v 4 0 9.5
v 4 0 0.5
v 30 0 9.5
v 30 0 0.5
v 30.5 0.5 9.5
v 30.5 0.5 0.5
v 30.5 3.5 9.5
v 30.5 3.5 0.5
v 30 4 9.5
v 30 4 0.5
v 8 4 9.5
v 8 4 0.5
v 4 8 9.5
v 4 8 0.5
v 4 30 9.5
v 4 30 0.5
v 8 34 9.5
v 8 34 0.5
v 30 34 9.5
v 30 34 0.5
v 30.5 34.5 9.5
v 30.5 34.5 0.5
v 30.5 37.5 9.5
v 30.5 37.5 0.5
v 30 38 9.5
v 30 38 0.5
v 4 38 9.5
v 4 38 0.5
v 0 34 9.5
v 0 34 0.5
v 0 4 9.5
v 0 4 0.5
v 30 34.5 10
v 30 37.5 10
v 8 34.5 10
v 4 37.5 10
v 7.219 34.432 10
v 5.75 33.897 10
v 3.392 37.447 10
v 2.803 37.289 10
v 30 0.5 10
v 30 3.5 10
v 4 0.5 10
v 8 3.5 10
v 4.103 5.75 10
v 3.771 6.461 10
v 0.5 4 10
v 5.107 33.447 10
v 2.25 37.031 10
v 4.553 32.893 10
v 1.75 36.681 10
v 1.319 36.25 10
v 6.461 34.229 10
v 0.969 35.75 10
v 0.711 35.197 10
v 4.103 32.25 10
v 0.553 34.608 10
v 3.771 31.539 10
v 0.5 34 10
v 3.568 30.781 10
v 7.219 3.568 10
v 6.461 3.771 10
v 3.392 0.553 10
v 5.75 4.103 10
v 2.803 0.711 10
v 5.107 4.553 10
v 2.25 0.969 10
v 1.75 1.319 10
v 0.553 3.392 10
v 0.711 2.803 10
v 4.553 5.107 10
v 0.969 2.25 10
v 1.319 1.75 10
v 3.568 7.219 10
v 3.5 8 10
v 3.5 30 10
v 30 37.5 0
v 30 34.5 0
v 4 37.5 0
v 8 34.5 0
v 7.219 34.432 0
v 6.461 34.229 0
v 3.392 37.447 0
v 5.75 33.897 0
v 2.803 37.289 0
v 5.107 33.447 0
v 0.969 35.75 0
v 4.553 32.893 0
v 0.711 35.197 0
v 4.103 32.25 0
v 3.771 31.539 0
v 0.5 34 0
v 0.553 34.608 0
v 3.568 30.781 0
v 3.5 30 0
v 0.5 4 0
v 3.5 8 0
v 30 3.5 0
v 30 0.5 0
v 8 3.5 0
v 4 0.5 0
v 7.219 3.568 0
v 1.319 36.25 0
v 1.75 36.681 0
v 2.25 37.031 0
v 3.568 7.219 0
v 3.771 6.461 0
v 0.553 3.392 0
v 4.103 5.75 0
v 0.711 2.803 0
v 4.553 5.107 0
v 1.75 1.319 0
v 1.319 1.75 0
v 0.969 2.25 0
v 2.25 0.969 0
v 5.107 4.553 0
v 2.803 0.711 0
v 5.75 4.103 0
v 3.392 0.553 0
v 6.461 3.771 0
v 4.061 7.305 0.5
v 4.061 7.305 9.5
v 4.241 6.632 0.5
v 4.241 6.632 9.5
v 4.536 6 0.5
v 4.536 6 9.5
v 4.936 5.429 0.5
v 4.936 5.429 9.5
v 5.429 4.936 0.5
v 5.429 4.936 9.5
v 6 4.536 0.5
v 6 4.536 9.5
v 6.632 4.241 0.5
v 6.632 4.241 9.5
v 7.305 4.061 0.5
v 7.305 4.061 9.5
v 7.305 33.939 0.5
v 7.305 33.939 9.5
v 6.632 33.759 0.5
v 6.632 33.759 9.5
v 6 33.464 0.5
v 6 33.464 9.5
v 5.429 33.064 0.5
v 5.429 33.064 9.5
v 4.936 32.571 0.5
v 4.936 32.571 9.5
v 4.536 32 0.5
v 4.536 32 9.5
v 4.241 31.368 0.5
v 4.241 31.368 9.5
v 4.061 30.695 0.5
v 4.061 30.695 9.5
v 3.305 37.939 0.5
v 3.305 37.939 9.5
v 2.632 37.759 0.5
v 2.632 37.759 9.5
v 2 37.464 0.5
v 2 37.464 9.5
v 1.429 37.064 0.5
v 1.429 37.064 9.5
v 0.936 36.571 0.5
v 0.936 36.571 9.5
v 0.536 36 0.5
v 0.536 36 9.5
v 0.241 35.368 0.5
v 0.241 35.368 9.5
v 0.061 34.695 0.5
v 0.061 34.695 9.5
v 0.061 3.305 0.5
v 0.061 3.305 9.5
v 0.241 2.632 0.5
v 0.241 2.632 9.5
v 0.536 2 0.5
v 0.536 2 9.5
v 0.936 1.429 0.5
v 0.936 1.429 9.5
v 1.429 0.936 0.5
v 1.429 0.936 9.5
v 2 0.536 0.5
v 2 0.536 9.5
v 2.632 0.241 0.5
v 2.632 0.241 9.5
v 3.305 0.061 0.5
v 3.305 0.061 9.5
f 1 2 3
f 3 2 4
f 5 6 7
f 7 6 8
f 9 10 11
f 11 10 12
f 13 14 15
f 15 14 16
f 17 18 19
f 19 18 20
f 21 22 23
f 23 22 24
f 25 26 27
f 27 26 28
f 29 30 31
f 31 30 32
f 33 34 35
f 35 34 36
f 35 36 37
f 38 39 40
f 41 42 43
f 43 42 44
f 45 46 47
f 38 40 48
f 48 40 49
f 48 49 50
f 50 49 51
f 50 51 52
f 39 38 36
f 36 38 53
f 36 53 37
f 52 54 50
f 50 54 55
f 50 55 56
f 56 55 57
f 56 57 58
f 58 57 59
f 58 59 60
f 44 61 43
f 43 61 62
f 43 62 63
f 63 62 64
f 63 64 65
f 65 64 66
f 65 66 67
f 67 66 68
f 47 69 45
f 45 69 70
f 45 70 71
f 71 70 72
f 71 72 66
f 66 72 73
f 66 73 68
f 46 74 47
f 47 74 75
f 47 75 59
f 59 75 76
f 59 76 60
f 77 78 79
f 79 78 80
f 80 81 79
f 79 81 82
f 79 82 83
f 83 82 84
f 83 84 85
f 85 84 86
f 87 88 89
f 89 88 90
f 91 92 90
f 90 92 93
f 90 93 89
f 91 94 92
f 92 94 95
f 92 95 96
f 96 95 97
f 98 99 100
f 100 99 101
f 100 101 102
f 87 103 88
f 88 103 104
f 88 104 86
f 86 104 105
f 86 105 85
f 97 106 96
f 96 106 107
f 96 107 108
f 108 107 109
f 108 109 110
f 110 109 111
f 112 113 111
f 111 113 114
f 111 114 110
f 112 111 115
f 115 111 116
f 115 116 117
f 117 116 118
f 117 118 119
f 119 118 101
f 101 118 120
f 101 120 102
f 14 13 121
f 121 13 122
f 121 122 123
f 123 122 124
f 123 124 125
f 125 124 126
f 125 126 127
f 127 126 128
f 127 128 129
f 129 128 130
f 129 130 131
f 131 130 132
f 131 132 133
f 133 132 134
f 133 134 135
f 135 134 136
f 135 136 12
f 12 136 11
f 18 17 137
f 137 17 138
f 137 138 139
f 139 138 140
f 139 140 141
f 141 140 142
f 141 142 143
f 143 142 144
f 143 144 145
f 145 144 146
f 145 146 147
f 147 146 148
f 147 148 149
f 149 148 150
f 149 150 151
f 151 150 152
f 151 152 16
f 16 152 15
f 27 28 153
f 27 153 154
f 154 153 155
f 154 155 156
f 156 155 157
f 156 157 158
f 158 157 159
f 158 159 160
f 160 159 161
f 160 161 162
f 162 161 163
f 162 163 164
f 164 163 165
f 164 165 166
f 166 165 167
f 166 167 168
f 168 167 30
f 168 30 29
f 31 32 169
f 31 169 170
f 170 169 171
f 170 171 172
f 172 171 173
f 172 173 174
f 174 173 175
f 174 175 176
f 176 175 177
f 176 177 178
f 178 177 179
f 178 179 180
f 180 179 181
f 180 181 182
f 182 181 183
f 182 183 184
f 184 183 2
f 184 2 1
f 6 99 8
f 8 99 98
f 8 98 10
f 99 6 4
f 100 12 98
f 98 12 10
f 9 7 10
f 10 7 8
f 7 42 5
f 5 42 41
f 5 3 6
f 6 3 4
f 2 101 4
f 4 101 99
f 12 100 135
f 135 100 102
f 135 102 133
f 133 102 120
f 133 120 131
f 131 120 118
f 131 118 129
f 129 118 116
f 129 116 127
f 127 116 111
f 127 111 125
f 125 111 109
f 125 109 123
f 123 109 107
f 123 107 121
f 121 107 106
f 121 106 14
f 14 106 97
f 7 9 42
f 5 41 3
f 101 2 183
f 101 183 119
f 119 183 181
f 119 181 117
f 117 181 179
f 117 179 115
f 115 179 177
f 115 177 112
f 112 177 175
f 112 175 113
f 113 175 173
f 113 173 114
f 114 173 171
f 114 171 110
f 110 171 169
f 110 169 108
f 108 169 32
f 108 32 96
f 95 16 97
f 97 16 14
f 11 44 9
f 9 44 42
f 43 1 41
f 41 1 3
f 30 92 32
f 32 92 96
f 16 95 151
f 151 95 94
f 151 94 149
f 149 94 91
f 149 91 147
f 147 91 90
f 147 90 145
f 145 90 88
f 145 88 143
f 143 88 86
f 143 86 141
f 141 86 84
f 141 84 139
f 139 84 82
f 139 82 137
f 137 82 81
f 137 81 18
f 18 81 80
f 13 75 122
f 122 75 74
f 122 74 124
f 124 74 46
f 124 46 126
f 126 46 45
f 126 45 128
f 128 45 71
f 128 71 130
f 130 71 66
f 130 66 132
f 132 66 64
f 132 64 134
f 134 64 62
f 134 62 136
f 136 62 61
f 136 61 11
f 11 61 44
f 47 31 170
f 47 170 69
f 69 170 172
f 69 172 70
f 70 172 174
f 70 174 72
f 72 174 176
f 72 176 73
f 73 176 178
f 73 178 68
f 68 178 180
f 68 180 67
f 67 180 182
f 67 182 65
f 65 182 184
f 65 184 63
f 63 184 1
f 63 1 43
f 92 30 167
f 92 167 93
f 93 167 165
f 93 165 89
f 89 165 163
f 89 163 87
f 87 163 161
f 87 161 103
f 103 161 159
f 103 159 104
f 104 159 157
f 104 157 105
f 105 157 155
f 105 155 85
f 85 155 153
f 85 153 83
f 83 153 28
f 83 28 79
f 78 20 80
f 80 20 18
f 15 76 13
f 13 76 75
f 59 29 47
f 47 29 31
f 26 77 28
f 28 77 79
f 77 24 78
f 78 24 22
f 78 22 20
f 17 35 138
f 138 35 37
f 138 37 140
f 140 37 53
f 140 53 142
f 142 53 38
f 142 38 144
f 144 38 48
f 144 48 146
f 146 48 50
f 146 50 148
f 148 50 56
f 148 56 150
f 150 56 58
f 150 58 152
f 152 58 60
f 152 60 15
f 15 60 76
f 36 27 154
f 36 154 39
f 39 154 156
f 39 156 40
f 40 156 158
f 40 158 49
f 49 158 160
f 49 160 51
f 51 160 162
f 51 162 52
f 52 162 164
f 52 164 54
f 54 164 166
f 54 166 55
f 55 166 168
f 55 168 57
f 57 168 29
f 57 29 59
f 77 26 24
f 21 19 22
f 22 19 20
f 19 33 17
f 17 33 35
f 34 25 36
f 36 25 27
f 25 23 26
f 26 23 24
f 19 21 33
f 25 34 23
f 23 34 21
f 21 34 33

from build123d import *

# Parameters (mm, degrees)
BOSS_EXTRUDE1_DEPTH = 10
FILLET1_R           = 4
CHAMFER1_SIZE       = 0.5


with BuildPart() as part:
    # Sketch1 → Boss-Extrude1 (new body)
    with BuildSketch(Plane.XY):
        Polygon((0, 0), (0, 38), (30.5, 38), (30.5, 34), (4, 34), (4, 4), (30.5, 4), (30.5, 0), align=None)
    extrude(amount=BOSS_EXTRUDE1_DEPTH)

    # Fillet1
    fillet1_edges = [part.edges().sort_by_distance(p)[0] for p in [
        (0, 0, 5),
        (0, 38, 5),
        (4, 34, 5),
        (4, 4, 5),
    ]]
    fillet(fillet1_edges, radius=FILLET1_R)

    # Chamfer1
    chamfer1_edges = [part.edges().sort_by_distance(p)[0] for p in [
        (19.25, 4, 10),
        (30.5, 2, 0),
        (30.5, 38, 5),
        (30.5, 34, 5),
        (30.5, 4, 5),
        (30.5, 0, 5),
        (30.5, 36, 10),
        (17.25, 38, 10),
        (4, 19, 0),
        (4, 19, 10),
        (19.25, 34, 0),
        (19.25, 34, 10),
        (0, 19, 0),
        (0, 19, 10),
        (17.25, 0, 0),
        (1.171572875, 1.171572875, 0),
        (1.171572875, 36.828427125, 0),
        (17.25, 0, 10),
        (1.171572875, 1.171572875, 10),
        (1.171572875, 36.828427125, 10),
        (5.171572875, 5.171572875, 0),
        (5.171572875, 5.171572875, 10),
        (5.171572875, 32.828427125, 0),
        (5.171572875, 32.828427125, 10),
        (30.5, 2, 10),
        (17.25, 38, 0),
        (30.5, 36, 0),
        (19.25, 4, 0),
    ]]
    chamfer(chamfer1_edges, length=CHAMFER1_SIZE)


solid = part.part
